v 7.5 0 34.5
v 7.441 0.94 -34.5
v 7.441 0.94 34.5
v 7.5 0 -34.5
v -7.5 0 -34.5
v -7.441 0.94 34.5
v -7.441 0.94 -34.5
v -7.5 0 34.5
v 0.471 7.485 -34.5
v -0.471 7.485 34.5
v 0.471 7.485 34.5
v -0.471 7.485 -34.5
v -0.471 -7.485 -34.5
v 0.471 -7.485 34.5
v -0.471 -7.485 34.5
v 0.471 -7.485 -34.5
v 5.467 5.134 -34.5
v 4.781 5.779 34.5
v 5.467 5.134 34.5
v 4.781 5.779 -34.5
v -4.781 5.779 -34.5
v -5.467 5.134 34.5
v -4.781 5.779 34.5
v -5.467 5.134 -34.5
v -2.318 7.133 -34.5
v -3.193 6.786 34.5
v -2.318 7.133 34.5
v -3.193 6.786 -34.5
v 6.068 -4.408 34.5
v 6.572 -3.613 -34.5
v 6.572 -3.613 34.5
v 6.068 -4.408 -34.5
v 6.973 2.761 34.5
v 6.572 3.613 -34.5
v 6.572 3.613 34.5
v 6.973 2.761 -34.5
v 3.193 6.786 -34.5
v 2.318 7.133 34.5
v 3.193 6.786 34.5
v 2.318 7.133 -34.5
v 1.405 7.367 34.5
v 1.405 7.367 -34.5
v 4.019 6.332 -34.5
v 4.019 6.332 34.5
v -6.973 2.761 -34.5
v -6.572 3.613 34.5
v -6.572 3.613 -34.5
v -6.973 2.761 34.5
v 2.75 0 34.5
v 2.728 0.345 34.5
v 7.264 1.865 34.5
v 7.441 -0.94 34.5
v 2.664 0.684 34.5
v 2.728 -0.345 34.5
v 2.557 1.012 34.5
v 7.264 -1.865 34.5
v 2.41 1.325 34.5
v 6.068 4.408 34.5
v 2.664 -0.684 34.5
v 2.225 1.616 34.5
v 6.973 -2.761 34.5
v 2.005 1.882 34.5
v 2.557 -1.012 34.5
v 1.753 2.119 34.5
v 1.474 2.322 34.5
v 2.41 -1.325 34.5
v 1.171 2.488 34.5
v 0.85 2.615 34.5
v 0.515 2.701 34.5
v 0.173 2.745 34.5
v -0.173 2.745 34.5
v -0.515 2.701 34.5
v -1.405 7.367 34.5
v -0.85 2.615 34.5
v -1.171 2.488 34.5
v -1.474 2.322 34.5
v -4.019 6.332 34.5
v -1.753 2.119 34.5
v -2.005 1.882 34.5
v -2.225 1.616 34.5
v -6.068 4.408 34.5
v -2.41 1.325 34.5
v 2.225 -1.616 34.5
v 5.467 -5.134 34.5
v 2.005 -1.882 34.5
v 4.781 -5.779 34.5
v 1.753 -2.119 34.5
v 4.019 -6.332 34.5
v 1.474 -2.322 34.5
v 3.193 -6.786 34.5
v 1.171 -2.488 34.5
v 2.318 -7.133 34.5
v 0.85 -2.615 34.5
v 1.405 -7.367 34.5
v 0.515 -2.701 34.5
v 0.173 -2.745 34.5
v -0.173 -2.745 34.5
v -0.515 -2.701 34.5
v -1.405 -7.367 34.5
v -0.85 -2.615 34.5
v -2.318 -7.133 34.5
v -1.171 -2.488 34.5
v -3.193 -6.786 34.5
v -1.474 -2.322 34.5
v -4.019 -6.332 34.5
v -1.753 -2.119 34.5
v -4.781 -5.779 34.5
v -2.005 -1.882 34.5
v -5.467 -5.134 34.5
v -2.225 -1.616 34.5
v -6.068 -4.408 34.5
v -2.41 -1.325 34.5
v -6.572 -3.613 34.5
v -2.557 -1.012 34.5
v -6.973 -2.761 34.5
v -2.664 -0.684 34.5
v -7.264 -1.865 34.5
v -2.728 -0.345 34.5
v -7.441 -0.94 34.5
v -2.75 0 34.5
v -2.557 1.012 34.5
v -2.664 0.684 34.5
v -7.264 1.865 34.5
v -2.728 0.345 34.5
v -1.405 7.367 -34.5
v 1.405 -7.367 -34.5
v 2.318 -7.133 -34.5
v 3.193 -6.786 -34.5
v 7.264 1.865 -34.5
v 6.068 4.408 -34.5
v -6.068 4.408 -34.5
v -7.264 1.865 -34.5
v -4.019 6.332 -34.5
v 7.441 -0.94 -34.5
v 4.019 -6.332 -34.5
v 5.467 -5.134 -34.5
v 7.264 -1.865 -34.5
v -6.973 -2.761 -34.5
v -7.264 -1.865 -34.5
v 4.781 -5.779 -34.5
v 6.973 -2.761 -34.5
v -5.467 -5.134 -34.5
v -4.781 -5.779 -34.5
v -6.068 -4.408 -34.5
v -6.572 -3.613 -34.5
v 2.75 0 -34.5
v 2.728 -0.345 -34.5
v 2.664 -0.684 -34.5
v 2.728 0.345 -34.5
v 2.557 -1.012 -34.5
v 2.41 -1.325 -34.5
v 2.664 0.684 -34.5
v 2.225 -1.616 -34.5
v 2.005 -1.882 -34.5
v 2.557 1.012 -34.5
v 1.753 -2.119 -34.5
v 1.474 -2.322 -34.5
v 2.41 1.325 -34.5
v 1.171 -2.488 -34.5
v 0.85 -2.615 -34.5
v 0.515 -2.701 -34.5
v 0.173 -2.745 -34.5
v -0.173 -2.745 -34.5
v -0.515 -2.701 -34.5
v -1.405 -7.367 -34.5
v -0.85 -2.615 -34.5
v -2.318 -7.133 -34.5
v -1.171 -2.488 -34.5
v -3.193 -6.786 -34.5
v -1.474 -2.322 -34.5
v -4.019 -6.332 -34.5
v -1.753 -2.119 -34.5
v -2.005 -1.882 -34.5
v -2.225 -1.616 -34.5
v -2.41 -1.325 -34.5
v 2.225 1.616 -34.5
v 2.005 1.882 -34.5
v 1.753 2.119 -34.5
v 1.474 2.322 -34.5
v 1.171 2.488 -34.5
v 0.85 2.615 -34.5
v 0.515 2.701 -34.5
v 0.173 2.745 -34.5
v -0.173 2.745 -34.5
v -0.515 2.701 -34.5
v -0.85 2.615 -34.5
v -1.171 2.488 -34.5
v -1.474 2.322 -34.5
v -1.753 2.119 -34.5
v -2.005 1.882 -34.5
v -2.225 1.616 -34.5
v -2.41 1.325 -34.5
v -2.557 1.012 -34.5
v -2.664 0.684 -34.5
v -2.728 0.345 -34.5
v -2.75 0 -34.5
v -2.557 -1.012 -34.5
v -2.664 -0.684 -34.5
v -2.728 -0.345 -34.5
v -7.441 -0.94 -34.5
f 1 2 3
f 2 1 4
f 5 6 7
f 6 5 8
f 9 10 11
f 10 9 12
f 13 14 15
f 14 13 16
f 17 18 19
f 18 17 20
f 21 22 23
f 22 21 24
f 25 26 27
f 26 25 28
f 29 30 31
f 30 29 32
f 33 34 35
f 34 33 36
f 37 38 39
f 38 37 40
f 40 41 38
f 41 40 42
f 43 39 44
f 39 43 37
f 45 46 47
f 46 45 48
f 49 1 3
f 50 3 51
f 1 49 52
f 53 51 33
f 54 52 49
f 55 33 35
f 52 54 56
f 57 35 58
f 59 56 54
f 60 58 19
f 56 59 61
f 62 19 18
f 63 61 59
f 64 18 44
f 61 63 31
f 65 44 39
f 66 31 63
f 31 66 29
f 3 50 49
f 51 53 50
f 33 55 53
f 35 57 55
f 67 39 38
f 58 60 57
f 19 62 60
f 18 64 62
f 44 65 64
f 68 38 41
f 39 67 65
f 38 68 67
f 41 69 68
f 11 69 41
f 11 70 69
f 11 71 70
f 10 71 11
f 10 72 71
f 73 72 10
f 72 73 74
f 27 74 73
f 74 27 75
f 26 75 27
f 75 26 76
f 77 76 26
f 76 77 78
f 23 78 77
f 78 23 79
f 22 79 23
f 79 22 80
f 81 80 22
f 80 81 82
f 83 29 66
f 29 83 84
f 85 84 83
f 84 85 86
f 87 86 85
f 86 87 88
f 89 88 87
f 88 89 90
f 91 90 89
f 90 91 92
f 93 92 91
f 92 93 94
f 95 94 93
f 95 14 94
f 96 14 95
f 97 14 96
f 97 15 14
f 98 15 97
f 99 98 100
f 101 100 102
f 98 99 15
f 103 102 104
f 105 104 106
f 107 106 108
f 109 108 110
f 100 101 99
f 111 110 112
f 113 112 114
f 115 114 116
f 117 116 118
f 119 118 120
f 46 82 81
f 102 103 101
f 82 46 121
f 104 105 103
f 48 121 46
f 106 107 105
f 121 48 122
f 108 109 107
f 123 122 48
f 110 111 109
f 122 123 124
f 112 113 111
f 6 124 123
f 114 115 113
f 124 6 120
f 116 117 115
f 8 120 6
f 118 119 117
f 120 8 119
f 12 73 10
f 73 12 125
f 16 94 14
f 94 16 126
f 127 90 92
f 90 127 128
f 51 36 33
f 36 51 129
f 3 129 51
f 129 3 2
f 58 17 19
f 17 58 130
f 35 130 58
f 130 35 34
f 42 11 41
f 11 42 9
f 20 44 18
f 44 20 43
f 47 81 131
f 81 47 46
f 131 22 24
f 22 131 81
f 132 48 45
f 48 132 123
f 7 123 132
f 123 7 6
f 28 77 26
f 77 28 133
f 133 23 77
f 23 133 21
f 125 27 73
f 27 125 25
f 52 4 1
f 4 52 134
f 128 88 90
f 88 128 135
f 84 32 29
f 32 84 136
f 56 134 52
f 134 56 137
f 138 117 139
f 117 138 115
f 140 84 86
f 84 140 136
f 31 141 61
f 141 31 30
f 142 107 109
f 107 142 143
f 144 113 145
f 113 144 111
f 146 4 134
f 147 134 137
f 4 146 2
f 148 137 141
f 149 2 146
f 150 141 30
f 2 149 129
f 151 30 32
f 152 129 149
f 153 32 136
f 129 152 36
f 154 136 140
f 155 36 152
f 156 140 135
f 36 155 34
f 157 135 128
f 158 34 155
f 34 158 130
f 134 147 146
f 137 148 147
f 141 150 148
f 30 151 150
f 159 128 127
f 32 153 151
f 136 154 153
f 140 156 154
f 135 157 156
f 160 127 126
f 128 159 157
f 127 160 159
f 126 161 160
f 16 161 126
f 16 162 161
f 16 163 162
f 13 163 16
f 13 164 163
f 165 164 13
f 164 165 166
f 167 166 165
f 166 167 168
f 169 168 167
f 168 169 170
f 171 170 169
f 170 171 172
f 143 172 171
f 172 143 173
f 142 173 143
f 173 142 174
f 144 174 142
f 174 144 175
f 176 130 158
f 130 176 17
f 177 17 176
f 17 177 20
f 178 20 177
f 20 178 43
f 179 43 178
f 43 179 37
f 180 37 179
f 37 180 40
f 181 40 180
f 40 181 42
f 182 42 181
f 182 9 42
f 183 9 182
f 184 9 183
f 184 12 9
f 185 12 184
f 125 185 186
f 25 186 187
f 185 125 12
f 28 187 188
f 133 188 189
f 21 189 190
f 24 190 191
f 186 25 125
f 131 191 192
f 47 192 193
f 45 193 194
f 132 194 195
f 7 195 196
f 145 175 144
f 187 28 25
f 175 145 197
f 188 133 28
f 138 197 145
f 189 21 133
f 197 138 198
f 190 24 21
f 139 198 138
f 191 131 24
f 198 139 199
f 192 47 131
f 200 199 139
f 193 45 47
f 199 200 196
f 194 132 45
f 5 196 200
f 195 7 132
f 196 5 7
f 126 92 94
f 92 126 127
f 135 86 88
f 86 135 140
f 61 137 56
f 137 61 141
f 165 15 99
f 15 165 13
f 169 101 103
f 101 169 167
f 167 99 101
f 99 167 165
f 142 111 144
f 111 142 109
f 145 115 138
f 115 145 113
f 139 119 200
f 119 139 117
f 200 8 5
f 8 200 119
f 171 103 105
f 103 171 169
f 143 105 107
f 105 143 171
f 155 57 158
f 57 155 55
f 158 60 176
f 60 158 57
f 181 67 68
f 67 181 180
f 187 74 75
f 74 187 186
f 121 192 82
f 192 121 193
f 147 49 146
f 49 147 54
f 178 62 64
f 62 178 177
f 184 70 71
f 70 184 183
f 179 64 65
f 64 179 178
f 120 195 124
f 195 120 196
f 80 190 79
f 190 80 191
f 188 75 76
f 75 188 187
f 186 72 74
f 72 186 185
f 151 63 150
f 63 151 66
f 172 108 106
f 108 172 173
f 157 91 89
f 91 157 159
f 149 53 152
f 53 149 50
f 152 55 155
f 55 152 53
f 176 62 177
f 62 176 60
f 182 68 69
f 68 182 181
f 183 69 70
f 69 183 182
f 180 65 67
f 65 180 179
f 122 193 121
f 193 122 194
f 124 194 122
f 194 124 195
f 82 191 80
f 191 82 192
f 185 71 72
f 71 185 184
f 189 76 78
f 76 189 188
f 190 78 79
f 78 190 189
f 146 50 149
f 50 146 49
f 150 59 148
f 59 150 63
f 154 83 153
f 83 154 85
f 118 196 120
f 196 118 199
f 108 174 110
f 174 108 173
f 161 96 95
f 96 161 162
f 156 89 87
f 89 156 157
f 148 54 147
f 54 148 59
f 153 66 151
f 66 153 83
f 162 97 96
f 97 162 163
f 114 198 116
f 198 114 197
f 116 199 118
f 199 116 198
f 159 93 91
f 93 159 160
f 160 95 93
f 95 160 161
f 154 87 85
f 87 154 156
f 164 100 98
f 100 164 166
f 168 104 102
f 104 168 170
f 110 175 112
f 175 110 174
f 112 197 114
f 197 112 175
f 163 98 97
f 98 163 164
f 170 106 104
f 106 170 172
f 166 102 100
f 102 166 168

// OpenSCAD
$fn = 50;


difference() {
	union() {
		translate(v = [0, 0, -34.5000000000]) {
			cylinder(h = 69, r = 7.5000000000);
		}
	}
	union() {
		translate(v = [0, 0, -100.0000000000]) {
			cylinder(h = 200, r = 2.7500000000);
		}
	}
}
